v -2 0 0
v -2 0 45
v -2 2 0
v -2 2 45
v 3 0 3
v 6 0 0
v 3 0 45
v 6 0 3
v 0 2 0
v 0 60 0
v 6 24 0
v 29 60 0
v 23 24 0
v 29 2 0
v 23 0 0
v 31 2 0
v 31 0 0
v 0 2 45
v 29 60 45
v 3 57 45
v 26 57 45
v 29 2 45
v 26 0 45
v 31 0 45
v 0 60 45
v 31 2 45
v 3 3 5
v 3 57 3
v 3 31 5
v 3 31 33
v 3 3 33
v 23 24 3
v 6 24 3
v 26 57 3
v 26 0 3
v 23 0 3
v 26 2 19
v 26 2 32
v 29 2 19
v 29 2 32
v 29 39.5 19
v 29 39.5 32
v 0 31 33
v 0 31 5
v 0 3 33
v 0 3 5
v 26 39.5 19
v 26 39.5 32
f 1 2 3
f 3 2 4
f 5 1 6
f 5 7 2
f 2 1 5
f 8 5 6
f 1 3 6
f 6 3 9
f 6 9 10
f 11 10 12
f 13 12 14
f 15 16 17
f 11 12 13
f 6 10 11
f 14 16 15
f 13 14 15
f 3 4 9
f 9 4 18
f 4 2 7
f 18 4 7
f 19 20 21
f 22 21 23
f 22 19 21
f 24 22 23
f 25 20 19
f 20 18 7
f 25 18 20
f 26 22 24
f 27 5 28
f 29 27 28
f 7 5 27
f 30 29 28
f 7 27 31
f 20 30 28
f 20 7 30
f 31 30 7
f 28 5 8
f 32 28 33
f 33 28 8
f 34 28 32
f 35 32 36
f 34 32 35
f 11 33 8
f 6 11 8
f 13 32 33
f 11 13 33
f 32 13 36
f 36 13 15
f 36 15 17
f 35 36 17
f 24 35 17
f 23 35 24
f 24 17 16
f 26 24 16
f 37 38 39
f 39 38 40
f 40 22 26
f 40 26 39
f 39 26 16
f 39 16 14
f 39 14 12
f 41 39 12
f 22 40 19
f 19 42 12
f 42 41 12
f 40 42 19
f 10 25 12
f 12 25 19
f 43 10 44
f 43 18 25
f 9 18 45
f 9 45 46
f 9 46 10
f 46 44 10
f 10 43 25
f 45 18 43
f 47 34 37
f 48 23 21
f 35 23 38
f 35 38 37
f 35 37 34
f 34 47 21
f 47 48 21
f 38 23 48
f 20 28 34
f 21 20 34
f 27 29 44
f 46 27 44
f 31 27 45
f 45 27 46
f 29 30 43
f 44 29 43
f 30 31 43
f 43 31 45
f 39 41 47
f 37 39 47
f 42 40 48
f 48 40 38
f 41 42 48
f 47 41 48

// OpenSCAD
%cube([30, 60, 47]);

wall_thickness = 3;

box();
flange();

module box() {
    difference() {
        cube([29, 60, wall_thickness]);
        translate([6, -1, -0.5])
        cube([17, 25, wall_thickness+1]);
    }

    difference() {
        cube([wall_thickness, 60, 45]);
        translate([-0.5, 3, 5])
        cube([wall_thickness+1, 28, 28]);
    }

    translate([29-wall_thickness, 0])
    difference() {
        cube([wall_thickness, 60, 45]);
        translate([-0.5, -0.5, 19])
        cube([wall_thickness+1, 40, 13]);
    }

    translate([0, 60-wall_thickness])
    cube([29, wall_thickness, 45]);
}

module flange() {
    flange_thickness = 2;

    translate([-flange_thickness, 0])
    cube([wall_thickness+flange_thickness, flange_thickness, 45]);

    translate([29-wall_thickness, 0])
    cube([wall_thickness+flange_thickness, flange_thickness, 45]);
}
